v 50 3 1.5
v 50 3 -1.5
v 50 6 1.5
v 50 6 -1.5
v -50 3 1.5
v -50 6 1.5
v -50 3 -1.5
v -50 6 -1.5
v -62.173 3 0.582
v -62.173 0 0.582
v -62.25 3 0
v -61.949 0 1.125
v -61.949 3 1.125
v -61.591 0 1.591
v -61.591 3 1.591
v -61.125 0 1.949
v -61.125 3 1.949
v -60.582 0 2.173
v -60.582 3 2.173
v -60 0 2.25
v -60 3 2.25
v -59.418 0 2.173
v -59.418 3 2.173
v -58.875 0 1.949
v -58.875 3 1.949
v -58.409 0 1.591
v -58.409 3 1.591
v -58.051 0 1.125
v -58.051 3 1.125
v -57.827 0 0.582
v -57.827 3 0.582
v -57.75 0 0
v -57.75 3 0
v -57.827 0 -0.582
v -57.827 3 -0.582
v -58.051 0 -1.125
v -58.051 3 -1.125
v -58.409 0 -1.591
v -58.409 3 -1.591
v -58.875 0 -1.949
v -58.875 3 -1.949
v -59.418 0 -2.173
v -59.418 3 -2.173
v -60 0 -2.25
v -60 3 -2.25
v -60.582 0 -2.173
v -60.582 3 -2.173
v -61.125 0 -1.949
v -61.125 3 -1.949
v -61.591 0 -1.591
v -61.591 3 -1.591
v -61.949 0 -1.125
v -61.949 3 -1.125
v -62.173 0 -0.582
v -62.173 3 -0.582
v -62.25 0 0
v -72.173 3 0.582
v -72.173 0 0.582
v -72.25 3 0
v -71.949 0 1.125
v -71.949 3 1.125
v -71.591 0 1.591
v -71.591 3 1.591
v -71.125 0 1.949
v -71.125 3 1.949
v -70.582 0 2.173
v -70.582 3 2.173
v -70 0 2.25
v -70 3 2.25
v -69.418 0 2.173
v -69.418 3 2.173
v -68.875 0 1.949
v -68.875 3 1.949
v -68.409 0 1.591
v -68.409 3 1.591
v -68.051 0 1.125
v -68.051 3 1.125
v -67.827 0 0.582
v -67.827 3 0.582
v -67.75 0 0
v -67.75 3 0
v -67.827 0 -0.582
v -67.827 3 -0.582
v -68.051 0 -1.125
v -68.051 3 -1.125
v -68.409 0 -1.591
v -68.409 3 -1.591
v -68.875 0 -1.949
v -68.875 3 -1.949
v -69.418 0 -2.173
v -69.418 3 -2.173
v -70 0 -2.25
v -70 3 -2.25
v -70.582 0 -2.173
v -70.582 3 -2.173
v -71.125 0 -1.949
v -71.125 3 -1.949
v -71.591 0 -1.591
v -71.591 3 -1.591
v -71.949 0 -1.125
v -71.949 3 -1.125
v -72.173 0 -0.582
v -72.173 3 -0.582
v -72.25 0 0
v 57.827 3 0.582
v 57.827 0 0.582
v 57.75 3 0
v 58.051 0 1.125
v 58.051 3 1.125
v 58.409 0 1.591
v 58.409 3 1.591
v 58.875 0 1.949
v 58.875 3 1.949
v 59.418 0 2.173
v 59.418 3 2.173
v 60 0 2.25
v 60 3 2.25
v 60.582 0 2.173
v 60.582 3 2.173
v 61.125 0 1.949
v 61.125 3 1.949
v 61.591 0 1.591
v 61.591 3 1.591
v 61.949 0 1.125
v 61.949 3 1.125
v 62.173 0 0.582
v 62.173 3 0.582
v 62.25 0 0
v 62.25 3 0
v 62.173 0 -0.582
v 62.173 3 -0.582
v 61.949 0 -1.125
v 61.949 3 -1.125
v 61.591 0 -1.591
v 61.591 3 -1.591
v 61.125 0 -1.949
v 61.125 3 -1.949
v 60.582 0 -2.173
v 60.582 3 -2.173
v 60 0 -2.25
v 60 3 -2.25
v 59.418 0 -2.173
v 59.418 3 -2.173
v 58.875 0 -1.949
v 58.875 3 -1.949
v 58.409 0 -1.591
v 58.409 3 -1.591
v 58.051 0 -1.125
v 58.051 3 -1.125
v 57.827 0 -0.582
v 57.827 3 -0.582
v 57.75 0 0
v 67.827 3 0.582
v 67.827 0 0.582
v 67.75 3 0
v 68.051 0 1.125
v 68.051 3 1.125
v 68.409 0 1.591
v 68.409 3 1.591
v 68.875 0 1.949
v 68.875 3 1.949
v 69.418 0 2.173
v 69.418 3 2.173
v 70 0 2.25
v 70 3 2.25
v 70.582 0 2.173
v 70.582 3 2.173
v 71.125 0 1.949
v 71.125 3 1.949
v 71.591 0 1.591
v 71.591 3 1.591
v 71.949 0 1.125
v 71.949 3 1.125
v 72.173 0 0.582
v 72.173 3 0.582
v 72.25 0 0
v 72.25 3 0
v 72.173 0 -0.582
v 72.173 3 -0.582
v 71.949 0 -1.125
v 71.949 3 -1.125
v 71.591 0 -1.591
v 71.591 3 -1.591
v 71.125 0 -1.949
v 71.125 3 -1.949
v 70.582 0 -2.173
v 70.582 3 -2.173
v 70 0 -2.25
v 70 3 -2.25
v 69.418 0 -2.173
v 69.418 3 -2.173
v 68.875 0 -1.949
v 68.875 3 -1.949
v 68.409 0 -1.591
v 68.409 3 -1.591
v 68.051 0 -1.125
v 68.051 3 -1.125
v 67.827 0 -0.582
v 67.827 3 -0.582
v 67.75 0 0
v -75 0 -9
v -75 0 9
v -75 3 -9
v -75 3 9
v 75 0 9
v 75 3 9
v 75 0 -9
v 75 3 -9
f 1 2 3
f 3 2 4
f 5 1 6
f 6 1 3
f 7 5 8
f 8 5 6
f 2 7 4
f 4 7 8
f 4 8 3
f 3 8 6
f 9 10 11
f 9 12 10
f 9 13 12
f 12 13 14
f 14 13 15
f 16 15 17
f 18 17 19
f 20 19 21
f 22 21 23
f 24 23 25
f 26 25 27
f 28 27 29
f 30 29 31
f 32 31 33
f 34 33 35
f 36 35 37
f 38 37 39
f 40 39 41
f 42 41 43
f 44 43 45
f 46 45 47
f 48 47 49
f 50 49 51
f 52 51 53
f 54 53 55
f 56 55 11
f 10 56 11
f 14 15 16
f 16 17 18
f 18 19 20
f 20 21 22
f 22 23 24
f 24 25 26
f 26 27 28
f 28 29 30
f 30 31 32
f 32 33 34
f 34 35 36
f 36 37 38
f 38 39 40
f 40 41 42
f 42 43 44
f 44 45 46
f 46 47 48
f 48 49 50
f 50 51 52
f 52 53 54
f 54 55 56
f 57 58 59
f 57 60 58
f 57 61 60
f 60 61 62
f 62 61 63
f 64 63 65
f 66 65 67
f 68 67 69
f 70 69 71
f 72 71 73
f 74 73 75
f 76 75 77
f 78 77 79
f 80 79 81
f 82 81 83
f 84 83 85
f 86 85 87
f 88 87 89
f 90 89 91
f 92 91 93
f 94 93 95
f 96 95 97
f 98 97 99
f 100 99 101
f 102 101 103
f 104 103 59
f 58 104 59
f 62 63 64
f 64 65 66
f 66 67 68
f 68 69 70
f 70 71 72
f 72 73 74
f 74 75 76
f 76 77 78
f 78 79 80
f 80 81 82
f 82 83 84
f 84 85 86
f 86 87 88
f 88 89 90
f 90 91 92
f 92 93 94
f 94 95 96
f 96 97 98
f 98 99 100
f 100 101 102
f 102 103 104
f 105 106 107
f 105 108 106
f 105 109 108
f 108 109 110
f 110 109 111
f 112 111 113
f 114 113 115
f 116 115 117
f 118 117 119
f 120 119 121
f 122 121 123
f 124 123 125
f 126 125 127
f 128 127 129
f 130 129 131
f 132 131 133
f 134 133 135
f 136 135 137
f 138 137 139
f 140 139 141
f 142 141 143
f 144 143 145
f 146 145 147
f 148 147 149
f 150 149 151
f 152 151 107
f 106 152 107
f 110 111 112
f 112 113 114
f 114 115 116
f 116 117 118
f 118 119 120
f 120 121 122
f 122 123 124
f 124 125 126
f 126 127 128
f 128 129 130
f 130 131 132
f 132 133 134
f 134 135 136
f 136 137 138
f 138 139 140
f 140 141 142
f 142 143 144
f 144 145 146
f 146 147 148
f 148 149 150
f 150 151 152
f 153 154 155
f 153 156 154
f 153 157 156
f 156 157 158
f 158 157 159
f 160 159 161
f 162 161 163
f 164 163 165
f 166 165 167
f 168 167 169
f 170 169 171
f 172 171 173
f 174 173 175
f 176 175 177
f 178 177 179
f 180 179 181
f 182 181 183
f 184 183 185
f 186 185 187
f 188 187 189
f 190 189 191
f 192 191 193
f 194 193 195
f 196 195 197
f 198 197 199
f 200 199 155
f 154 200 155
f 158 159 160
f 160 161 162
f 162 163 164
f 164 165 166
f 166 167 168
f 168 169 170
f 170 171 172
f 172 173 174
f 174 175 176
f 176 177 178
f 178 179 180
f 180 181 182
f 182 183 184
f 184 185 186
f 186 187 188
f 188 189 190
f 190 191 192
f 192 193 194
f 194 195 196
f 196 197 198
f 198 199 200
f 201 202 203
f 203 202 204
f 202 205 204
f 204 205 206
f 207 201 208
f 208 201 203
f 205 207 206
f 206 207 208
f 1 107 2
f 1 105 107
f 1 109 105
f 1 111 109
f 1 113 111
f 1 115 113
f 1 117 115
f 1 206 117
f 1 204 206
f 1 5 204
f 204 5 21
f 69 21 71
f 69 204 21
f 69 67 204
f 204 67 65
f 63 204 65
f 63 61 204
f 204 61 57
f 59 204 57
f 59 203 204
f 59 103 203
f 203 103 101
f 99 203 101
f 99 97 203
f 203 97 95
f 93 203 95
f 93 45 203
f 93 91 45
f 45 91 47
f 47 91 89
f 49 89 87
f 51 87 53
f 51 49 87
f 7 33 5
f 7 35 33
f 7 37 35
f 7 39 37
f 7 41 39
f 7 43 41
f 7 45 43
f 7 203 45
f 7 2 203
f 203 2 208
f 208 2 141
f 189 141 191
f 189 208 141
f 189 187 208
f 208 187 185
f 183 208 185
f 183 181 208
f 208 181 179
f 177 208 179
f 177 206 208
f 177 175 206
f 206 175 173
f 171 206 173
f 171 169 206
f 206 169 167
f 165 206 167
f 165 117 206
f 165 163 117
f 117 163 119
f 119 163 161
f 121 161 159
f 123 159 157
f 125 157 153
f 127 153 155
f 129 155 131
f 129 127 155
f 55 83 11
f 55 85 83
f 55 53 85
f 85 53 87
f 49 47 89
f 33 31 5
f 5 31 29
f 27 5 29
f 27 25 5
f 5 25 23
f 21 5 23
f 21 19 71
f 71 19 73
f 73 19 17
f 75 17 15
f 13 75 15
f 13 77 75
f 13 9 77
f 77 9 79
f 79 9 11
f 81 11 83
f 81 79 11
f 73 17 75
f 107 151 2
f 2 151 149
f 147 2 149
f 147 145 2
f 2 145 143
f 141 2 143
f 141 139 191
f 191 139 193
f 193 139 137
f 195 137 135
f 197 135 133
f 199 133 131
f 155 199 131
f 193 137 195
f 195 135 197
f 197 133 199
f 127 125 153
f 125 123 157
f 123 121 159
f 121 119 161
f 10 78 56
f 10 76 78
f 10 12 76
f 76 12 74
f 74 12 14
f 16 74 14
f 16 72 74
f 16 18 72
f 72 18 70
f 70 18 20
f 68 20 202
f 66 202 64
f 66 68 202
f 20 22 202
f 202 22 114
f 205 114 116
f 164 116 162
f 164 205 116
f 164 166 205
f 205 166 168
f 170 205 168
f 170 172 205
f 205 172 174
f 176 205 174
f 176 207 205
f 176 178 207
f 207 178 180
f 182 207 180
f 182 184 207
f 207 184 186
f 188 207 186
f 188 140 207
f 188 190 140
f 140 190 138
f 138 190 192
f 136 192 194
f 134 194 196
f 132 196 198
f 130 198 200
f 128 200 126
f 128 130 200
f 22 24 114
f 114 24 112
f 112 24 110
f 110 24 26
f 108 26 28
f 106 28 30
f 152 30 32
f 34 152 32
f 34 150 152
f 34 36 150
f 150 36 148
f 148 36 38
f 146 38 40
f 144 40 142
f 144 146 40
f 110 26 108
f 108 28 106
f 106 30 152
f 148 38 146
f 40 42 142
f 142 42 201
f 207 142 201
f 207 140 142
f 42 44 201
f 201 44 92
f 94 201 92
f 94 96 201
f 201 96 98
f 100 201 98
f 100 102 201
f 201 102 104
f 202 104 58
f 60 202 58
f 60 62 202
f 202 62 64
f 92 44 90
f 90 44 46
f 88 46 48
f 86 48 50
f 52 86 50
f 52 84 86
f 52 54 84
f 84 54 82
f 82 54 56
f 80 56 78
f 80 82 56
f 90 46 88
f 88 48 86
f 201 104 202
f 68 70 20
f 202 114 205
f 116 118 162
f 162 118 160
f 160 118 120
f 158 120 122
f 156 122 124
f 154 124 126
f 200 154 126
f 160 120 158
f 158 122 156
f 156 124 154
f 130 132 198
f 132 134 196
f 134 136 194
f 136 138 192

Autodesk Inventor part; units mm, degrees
ref_plane "YZ Plane" through (0, 0, 0) normal (1, 0, 0) x (0, 1, 0)
ref_plane "XZ Plane" through (0, 0, 0) normal (0, 1, 0) x (-1, 0, 0)
ref_plane "XY Plane" through (0, 0, 0) normal (0, 0, 1) x (1, 0, 0)
sketch "Sketch1" plane through (0, 0, 0) normal (0, 1, 0) x (-1, 0, 0)
  line L0 (-75, 9) -> (0, 9)
  line L1 (75, 9) -> (75, -9)
  line L2 (75, -9) -> (0, -9)
  line L3 (-75, -9) -> (-75, 9)
  line L4 (-75, 0) -> (75, 0) construction
  circle A0 centre (-70, 0) radius 2.25
  circle A1 centre (-60, 0) radius 2.25
  line L5 (0, 9) -> (75, 9)
  line L6 (0, -9) -> (-75, -9)
  line L7 (-55, 9) -> (-55, -9)
  line L8 (0, 37.7423) -> (0, -37.3462) construction
  circle A2 centre (70, 0) radius 2.25
  circle A3 centre (60, 0) radius 2.25
  line L9 (55, 9) -> (55, -9)
  point P0 (0, 0)
  dimension "d1" = 18
  dimension "d2" = 4.5
  dimension "d3" = 4.5
  dimension "d4" = 5
  dimension "d5" = 15
  dimension "d17" = 5
  dimension "d18" = 110
  dimension "d19" = 5
extrude "Extrusion1" add sketch "Sketch1" along normal blind 3
sketch "Sketch2" plane through (0, 3, 0) normal (0, 1, 0) x (1, 0, 0)
  line L0 (-50, 1.5) -> (50, 1.5)
  line L1 (50, 1.5) -> (50, -1.5)
  line L2 (50, -1.5) -> (-50, -1.5)
  line L3 (-50, -1.5) -> (-50, 1.5)
  point P0 (0, 0)
  point P1 (50, 0)
  point P2 (0, 1.5)
  dimension "d20" = 100
  dimension "d21" = 3
extrude "Extrusion3" add sketch "Sketch2" along normal blind 3
properties part number "TopSliderBar"
